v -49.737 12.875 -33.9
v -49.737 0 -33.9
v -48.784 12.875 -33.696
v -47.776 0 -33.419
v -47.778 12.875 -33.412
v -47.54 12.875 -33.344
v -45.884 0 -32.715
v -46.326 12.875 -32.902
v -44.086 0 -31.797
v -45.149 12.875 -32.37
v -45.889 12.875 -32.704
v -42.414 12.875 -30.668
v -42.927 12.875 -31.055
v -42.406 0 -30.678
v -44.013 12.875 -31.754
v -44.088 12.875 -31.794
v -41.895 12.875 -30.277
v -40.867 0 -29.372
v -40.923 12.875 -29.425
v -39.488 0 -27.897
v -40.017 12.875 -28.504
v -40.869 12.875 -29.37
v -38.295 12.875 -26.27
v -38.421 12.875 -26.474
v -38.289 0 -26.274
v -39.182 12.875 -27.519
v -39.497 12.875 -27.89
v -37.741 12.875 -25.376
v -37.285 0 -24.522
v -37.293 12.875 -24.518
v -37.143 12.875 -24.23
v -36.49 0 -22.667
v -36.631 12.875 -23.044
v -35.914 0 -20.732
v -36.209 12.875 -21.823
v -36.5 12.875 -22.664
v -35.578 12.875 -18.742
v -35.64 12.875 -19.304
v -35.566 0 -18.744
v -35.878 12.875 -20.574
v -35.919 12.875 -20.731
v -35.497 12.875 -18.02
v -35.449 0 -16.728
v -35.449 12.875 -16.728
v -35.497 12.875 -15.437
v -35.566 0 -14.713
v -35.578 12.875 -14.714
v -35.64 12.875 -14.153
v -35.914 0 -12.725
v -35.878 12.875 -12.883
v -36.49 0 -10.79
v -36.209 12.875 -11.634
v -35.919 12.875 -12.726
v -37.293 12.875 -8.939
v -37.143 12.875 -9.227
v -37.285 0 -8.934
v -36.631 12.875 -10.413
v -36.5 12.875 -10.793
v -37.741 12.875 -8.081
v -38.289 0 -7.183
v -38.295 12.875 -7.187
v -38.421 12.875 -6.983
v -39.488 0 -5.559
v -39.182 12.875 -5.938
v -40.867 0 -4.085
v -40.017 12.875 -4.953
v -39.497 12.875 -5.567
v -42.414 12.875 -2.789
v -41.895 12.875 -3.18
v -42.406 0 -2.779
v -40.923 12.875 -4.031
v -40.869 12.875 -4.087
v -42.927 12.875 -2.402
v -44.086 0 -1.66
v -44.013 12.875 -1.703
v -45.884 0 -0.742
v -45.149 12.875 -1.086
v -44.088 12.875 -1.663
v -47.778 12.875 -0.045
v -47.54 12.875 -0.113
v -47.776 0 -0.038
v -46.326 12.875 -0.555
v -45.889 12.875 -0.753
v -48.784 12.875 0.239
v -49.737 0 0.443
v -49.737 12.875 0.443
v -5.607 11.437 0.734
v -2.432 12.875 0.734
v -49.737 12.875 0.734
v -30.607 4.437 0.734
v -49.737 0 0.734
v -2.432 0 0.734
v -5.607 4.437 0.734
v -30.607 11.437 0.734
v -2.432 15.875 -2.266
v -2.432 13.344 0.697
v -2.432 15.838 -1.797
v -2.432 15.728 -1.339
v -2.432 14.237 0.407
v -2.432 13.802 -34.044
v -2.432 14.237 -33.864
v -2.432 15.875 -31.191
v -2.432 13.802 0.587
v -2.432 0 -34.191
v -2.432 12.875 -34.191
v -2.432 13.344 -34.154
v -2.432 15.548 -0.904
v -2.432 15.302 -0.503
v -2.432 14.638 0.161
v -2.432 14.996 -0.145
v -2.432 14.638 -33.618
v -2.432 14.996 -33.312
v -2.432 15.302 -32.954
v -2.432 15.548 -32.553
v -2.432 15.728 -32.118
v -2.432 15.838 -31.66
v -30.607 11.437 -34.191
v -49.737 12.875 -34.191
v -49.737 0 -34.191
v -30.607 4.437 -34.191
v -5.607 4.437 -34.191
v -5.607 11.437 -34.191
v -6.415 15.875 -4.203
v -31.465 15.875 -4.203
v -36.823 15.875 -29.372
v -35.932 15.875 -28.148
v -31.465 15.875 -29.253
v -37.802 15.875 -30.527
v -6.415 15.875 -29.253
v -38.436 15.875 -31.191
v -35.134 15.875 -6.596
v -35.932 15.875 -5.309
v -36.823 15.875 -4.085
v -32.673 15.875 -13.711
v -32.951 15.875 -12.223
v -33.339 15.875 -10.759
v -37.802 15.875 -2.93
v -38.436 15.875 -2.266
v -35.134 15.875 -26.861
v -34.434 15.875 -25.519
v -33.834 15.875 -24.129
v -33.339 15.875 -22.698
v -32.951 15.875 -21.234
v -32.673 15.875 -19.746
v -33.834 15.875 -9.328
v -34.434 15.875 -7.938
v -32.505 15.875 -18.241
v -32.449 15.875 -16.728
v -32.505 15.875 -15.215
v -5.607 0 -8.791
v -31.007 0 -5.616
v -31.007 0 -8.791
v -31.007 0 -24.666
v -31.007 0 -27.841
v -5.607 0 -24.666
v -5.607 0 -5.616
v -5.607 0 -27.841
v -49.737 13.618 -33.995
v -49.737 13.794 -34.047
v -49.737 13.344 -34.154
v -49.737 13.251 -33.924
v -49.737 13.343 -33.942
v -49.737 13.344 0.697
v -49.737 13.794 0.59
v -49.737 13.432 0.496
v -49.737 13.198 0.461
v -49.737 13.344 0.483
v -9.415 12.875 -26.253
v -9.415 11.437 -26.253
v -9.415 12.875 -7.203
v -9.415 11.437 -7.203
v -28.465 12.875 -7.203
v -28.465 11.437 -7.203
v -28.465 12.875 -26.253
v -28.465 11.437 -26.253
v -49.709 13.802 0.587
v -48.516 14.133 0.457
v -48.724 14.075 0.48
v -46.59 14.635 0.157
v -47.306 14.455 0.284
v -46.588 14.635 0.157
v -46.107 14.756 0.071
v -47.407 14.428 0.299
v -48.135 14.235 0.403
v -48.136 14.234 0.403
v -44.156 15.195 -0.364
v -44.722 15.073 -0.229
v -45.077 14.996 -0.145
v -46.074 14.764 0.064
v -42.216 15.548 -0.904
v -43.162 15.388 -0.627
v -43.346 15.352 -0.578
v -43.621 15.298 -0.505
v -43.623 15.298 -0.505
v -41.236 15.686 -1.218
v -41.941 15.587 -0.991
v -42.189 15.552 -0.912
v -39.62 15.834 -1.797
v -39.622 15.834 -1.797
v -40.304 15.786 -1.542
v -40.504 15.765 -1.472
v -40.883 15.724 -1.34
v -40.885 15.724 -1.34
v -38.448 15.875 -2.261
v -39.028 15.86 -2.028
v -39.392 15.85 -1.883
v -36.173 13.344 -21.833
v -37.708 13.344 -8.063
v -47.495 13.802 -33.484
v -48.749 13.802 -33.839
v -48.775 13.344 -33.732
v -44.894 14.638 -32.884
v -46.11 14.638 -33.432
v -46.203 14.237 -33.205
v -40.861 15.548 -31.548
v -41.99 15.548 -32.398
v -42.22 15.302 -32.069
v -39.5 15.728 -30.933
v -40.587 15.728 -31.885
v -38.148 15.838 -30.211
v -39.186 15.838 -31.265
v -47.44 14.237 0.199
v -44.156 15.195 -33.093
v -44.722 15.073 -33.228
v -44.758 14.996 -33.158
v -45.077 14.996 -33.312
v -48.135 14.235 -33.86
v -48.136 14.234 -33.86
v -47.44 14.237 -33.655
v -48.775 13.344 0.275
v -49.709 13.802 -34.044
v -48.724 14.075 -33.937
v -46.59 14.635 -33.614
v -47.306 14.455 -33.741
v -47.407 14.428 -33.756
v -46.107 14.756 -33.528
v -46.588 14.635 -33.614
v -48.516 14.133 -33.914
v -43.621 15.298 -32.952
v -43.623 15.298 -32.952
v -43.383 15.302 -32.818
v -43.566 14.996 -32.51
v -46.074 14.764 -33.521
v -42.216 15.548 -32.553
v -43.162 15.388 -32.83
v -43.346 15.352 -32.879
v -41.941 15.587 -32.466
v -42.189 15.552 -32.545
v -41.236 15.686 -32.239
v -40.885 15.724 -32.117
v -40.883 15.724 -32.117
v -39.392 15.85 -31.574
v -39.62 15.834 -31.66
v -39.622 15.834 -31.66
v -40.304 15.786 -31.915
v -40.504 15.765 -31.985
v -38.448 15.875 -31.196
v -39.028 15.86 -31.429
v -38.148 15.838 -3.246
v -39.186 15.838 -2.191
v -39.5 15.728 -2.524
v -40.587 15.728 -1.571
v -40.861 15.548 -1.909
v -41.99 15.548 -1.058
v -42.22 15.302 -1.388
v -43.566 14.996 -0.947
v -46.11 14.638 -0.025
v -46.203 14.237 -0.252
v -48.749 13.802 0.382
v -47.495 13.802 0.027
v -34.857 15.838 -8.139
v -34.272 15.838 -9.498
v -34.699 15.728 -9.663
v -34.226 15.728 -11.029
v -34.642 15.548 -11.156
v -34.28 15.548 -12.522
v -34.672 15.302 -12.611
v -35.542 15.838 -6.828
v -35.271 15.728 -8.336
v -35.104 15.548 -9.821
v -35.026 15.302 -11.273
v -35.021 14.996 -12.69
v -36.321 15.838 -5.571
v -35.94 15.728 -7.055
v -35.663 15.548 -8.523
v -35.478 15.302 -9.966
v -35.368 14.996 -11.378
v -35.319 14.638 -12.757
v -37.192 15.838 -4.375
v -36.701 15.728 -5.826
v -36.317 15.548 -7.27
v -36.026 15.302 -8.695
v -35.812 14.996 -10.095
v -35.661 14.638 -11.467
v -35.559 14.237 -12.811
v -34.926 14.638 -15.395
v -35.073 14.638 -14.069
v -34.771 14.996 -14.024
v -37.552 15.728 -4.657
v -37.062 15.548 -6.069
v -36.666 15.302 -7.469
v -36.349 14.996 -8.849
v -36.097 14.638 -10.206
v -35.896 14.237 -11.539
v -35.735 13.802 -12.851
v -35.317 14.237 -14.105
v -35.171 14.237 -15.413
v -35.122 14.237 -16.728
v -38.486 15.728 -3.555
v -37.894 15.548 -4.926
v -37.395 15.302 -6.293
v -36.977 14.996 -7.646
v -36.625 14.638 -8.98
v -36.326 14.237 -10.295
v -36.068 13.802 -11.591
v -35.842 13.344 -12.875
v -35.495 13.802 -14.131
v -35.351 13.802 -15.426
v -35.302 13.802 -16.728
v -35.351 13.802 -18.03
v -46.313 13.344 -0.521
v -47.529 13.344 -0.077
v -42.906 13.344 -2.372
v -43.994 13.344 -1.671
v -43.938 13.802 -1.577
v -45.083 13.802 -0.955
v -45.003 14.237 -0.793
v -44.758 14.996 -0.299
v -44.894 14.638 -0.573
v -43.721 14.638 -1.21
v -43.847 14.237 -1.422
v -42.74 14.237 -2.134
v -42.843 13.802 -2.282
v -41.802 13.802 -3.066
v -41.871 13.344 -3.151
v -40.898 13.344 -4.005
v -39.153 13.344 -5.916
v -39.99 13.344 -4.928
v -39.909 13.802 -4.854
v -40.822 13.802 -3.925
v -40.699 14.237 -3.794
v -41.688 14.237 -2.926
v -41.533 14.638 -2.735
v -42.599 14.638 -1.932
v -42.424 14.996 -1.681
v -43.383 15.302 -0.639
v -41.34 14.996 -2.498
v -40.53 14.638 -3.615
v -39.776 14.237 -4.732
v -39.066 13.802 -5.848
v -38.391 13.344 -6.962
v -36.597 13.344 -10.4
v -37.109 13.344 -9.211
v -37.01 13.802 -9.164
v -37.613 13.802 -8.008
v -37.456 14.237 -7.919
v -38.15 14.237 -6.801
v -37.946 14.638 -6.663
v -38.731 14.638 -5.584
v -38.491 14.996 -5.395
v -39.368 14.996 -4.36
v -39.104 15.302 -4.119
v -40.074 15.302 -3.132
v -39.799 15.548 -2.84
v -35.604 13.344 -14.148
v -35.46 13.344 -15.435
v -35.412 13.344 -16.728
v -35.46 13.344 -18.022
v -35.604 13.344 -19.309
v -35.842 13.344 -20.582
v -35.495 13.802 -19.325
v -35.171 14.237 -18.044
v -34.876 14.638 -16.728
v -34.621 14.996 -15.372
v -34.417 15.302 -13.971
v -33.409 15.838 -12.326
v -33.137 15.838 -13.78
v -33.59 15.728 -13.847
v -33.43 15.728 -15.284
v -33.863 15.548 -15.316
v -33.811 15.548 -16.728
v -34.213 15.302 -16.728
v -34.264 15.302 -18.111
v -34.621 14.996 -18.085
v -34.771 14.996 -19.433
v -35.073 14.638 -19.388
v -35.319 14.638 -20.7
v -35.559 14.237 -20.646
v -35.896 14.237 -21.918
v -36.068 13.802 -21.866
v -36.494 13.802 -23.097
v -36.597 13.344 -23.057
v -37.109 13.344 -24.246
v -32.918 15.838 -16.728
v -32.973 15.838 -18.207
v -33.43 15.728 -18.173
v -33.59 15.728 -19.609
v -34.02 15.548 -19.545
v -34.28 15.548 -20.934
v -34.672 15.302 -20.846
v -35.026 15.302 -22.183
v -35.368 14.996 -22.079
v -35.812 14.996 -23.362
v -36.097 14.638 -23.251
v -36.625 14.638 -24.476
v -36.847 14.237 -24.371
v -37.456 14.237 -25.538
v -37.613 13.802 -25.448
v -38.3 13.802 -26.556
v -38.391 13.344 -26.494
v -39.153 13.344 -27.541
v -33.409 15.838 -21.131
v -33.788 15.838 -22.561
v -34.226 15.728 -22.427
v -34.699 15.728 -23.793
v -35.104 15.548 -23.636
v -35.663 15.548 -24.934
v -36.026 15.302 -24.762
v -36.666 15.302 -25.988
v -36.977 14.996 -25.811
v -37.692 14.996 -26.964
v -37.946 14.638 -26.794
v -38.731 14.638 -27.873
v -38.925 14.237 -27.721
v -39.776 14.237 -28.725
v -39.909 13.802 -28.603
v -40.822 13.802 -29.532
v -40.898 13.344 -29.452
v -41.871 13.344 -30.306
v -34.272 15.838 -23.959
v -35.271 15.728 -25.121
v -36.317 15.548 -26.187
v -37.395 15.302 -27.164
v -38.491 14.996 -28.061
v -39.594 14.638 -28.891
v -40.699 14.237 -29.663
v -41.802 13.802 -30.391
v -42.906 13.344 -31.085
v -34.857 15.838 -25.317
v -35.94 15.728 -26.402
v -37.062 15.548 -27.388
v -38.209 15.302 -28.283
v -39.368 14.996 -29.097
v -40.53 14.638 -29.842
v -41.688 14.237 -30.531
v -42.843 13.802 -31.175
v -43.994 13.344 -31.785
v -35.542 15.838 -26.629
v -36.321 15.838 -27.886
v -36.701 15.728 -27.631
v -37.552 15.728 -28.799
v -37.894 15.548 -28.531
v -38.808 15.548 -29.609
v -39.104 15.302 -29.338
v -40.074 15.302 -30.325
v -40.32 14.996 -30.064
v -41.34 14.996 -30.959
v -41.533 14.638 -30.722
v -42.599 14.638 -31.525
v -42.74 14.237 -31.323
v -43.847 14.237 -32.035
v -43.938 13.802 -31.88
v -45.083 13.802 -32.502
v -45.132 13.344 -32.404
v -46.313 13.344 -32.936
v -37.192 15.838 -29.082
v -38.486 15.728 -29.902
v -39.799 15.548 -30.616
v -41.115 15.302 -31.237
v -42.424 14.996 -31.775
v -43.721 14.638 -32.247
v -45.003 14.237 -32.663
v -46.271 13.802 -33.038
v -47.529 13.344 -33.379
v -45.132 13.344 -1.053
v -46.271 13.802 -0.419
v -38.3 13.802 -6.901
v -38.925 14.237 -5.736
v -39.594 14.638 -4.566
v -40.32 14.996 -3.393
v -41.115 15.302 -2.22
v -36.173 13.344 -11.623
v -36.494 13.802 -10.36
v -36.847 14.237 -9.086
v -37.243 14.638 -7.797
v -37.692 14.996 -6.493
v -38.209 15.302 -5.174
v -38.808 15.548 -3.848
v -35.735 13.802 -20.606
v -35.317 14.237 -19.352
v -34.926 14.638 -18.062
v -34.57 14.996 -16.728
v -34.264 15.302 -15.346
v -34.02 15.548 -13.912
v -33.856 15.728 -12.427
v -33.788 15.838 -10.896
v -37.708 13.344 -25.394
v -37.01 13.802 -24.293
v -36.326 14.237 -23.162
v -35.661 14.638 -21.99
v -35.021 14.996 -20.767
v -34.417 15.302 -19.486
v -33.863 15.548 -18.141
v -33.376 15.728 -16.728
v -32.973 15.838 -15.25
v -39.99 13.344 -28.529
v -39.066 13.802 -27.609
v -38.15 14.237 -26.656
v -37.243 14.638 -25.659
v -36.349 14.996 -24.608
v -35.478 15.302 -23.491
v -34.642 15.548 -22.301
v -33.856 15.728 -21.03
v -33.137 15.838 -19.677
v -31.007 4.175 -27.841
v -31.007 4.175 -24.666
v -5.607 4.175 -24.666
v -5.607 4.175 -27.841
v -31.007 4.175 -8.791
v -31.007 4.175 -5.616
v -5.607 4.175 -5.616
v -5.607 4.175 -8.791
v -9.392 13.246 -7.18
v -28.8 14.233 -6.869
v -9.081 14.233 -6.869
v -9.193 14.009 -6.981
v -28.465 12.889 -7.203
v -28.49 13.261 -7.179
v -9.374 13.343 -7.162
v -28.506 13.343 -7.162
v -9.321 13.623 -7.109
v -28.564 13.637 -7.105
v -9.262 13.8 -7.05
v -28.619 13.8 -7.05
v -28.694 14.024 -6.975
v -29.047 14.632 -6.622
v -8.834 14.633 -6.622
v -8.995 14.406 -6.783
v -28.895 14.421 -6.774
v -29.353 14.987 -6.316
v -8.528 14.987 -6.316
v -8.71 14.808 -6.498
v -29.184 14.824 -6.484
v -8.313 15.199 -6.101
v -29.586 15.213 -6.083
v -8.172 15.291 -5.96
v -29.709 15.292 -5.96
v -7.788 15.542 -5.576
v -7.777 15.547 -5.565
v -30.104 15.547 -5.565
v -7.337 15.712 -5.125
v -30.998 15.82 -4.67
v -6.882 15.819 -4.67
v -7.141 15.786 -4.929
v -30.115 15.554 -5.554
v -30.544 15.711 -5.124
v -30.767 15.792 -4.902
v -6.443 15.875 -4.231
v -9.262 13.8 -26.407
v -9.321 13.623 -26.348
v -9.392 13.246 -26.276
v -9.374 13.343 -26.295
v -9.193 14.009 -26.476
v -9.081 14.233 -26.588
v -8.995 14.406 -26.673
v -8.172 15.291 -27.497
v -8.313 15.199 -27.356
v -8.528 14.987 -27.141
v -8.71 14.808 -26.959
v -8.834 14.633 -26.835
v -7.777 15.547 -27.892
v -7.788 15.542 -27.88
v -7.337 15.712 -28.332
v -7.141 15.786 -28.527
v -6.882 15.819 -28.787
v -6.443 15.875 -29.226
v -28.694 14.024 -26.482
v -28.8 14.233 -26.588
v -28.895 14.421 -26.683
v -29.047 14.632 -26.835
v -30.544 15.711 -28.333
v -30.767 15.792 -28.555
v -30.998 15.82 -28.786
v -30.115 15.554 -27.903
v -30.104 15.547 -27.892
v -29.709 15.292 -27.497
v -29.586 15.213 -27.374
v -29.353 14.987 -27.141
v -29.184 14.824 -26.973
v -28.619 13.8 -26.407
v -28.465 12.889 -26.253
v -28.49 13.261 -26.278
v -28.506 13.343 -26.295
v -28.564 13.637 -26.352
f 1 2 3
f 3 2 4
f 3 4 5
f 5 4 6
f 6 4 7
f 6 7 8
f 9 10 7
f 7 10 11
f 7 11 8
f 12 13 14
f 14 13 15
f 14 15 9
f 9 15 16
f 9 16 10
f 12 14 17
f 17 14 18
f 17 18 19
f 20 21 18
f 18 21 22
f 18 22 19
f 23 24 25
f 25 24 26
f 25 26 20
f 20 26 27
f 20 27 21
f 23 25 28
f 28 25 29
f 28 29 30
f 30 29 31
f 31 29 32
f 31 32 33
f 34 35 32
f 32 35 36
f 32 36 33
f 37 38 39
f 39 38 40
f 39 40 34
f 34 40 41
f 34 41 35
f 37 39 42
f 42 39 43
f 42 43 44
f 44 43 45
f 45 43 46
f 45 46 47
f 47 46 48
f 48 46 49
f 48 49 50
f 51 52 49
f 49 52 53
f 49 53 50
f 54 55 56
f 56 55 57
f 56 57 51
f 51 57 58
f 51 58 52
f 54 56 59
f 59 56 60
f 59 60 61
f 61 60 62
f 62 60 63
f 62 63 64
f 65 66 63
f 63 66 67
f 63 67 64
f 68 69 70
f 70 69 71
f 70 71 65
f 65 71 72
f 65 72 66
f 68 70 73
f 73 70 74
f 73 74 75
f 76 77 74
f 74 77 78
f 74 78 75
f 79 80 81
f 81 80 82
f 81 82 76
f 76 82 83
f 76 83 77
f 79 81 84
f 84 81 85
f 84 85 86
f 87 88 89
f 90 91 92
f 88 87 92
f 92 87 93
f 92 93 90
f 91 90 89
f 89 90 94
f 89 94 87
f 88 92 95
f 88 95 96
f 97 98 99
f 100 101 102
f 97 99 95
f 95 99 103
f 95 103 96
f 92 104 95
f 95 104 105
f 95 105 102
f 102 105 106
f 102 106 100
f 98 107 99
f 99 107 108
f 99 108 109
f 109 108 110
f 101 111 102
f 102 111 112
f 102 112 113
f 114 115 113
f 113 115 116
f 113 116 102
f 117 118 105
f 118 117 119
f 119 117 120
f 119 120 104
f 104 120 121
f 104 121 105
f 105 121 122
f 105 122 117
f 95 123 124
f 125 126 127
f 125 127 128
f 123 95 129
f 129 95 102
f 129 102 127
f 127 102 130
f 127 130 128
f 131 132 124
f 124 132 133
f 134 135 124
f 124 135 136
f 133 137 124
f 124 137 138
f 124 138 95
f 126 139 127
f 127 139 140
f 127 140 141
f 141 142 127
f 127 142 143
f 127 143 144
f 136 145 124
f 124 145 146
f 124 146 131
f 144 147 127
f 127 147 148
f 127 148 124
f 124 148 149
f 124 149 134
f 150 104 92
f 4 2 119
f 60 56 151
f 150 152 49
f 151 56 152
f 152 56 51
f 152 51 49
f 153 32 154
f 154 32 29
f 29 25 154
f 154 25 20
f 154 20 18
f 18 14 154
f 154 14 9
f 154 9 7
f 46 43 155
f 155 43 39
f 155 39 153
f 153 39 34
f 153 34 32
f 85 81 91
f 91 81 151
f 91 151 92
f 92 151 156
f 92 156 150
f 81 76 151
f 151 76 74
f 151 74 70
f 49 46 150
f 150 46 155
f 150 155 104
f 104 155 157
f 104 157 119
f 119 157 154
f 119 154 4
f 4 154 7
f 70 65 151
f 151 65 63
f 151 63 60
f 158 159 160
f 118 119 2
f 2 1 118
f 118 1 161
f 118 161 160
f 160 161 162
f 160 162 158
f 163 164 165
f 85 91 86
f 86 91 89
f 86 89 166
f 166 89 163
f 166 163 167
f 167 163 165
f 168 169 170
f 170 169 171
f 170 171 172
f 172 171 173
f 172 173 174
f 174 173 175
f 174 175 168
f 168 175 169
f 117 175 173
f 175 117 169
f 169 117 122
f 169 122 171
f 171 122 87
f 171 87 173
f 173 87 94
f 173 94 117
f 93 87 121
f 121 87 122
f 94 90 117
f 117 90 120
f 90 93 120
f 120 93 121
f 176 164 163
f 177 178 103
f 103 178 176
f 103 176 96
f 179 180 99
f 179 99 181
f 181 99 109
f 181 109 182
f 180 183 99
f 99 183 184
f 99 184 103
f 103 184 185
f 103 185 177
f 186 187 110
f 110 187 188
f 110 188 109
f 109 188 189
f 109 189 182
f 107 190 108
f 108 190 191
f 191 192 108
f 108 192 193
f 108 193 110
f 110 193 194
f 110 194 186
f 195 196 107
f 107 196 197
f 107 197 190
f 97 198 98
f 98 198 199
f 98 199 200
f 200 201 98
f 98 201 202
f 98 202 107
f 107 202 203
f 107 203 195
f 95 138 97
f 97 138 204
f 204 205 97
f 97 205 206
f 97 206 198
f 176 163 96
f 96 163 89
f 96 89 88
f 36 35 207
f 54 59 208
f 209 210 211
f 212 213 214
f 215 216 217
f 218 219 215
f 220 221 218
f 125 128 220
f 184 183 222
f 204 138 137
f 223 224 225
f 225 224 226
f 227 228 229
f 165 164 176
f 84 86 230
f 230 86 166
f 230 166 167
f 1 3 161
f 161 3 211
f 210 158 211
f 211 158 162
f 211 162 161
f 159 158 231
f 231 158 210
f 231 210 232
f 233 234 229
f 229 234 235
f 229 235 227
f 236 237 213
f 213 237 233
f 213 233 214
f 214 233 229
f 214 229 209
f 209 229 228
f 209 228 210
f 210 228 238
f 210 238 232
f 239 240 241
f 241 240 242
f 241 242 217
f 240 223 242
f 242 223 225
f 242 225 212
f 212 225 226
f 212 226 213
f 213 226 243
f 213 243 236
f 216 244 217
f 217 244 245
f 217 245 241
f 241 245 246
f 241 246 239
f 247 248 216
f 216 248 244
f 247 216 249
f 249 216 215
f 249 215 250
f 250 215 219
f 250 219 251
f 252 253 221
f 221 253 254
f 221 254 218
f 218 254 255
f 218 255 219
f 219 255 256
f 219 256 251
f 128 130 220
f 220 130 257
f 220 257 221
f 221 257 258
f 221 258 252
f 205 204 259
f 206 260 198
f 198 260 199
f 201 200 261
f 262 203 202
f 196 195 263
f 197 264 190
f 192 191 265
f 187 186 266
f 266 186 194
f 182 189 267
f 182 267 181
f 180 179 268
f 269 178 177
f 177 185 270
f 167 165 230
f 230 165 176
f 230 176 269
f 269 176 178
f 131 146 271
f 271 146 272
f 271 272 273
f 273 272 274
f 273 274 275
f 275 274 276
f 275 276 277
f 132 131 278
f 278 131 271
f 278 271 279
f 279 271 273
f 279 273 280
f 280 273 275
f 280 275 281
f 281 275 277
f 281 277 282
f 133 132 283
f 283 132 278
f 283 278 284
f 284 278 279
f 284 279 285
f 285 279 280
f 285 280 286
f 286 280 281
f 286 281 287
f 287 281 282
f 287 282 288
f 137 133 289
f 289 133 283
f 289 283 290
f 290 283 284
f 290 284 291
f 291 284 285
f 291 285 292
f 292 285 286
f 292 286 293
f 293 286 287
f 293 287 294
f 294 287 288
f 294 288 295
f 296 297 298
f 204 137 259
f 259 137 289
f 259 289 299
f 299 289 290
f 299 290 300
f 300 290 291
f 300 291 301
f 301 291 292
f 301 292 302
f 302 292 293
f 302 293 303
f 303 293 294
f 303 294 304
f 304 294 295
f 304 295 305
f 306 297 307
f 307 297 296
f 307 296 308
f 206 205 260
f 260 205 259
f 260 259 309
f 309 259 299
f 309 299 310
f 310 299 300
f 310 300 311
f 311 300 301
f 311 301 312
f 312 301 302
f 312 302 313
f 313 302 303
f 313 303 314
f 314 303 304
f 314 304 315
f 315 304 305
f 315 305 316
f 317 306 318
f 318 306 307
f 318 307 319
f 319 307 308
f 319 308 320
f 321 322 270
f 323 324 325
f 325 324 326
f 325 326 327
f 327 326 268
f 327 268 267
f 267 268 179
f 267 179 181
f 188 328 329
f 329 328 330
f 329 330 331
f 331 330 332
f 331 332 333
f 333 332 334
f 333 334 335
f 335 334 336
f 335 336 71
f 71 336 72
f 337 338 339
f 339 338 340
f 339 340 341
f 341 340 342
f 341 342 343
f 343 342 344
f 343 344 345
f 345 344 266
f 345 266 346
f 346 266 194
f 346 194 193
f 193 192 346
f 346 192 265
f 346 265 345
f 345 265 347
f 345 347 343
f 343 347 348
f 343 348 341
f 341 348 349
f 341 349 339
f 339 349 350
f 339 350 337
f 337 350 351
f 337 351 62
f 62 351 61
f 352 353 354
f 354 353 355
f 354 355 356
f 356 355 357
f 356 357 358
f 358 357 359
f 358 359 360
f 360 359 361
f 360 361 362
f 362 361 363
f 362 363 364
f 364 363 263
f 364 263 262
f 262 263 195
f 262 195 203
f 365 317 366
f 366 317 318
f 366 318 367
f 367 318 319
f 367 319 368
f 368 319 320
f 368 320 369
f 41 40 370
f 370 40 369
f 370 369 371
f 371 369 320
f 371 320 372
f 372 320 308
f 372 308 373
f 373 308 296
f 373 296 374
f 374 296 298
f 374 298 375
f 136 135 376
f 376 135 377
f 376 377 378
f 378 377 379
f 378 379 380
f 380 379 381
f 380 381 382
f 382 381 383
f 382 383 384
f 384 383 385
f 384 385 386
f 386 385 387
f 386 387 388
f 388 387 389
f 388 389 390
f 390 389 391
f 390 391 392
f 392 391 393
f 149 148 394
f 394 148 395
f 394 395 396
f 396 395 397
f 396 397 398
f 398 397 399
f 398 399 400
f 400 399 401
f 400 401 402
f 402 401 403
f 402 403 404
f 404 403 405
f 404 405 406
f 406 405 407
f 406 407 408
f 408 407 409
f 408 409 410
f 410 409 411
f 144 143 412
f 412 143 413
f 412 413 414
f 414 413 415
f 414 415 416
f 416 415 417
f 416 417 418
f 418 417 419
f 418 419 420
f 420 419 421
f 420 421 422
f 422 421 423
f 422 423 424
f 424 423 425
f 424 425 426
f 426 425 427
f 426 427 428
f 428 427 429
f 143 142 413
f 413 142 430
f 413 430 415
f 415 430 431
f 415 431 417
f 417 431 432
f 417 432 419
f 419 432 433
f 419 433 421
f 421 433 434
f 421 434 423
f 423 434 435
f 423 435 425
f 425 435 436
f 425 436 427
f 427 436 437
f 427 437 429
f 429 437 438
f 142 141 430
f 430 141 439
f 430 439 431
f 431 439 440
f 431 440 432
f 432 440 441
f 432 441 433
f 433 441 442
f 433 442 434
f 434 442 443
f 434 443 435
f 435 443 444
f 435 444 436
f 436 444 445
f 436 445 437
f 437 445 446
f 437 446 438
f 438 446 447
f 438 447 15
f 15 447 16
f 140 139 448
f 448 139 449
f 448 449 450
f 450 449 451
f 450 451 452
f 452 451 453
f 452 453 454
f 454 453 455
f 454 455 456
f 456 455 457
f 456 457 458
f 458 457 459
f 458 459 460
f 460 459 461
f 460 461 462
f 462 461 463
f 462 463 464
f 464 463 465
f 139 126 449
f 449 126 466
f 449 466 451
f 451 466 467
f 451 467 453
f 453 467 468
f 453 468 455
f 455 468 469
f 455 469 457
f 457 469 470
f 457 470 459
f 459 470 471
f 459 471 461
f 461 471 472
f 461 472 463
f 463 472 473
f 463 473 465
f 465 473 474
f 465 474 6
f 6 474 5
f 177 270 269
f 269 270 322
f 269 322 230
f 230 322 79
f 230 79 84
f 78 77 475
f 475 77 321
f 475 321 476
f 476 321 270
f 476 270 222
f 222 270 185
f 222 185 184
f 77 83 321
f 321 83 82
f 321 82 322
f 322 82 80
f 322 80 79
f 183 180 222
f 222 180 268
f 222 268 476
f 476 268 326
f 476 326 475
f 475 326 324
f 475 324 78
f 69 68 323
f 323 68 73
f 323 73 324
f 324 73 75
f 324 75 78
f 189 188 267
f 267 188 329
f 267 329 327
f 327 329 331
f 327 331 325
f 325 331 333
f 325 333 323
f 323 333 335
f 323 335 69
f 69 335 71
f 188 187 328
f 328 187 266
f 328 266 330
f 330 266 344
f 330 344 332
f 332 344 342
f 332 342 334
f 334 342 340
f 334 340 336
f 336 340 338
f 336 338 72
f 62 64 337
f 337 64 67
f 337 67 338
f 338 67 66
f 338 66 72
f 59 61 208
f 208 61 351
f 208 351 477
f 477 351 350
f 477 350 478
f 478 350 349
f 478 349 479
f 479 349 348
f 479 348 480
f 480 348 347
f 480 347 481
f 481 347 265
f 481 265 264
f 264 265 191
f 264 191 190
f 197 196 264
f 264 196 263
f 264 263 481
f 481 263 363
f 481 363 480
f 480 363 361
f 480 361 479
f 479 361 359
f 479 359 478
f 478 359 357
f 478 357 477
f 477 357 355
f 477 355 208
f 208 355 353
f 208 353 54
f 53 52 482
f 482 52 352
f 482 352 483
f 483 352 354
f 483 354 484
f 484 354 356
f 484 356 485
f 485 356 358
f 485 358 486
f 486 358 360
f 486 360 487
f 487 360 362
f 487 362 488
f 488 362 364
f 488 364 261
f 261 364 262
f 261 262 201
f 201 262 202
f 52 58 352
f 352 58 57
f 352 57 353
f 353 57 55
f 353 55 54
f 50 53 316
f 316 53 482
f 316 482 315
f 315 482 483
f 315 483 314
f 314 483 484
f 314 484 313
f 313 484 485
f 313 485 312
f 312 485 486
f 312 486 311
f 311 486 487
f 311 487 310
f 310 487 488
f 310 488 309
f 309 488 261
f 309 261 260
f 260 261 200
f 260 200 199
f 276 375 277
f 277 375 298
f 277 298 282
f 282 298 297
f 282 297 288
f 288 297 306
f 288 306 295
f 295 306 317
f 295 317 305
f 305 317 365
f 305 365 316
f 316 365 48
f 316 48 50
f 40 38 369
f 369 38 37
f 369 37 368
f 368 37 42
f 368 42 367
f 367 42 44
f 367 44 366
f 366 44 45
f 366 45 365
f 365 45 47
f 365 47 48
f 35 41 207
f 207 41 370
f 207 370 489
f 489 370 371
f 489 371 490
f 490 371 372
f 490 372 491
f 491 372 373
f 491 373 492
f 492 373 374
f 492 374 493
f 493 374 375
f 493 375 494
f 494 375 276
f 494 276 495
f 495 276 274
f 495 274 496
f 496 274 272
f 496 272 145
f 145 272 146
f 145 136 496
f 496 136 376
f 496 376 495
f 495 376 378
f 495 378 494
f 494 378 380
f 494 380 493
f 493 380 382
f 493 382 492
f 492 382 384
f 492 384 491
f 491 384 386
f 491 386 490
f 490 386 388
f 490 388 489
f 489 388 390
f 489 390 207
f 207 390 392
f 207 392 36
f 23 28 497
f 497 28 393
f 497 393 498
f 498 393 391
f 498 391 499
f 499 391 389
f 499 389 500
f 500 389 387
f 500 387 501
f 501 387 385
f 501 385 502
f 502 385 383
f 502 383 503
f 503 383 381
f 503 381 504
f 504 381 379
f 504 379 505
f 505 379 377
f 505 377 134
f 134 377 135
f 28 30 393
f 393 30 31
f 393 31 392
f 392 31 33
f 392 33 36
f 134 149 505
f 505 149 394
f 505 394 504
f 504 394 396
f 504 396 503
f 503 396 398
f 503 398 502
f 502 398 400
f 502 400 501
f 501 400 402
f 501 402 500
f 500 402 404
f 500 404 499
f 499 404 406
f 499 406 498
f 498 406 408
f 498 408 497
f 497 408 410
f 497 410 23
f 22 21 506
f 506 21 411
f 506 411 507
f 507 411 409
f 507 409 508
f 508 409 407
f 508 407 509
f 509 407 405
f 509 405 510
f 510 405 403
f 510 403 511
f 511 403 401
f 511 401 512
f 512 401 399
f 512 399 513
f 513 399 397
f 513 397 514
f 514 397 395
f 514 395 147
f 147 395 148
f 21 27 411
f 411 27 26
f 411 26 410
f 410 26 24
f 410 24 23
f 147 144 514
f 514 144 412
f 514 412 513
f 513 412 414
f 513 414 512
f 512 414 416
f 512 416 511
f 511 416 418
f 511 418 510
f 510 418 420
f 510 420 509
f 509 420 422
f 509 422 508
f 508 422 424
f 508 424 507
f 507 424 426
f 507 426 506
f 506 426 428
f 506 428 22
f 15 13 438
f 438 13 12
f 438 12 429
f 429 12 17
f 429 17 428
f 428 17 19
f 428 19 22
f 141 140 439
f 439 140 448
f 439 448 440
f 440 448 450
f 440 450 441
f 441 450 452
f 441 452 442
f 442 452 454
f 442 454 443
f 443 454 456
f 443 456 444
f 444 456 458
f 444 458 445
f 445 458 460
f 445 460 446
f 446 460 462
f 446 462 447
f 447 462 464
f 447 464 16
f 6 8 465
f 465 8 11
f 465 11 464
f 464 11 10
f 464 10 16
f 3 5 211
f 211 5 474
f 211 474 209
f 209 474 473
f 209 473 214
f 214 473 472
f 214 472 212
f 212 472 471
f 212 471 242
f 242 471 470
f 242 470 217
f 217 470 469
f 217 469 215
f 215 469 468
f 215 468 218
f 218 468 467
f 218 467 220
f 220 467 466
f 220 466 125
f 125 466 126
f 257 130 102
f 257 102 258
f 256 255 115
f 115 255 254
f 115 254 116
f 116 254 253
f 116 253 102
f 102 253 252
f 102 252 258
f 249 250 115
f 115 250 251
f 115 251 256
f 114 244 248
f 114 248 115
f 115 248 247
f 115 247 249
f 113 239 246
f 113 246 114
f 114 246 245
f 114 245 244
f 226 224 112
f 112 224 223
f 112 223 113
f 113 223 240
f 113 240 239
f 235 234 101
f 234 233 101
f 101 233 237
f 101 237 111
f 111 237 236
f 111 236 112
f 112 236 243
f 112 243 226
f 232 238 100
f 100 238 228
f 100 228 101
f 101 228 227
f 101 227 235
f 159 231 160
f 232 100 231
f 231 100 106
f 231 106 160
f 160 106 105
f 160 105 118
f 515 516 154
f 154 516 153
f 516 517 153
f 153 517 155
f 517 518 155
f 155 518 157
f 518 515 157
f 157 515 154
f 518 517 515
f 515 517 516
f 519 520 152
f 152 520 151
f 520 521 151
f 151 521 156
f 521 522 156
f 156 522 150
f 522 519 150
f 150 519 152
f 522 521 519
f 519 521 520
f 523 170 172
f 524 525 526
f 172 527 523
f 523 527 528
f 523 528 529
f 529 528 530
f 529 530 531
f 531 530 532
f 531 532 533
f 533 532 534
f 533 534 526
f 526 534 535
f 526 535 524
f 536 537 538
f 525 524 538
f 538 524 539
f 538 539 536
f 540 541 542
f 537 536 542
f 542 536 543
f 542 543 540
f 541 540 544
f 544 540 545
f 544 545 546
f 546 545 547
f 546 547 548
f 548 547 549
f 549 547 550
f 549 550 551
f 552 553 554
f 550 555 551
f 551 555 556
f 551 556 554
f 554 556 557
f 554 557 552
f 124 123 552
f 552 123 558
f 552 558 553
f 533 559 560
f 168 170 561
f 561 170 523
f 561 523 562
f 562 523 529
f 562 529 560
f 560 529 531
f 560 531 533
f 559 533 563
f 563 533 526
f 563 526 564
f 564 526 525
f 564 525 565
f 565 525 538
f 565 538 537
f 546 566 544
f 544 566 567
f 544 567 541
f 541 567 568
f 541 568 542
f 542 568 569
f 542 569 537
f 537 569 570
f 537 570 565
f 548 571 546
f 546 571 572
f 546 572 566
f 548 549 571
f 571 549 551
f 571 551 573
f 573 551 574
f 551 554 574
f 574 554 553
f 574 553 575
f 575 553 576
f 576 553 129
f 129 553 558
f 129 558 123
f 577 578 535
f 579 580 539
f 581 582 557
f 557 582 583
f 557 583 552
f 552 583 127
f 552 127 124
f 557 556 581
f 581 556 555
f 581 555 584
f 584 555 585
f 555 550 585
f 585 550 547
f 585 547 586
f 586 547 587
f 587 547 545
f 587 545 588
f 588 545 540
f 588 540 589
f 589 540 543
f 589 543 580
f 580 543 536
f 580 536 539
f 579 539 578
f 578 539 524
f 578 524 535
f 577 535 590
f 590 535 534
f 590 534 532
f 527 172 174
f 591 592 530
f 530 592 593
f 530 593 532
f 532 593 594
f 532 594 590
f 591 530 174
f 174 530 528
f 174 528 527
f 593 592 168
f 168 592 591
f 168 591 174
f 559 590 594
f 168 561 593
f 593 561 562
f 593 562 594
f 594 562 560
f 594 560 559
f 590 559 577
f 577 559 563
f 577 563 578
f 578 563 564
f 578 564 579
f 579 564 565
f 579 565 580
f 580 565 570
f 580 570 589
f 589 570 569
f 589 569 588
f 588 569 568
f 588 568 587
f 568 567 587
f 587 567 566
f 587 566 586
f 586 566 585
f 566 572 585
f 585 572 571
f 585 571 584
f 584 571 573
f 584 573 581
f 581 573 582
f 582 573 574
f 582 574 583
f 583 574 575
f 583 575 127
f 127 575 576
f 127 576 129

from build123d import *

# Parameters (mm, degrees)
BOSS_EXTRUDE1_DEPTH = 15.875
SKETCH5_W           = 3.175
SKETCH5_H           = 15.875
CUT_EXTRUDE1_DEPTH  = 3.175
SKETCH6_W           = 3.175
SKETCH6_H           = 15.875
CUT_EXTRUDE2_DEPTH  = 3.175
SKETCH7_W           = 19.05
SKETCH7_H           = 19.05
CUT_EXTRUDE4_DEPTH  = 10
SKETCH8_W           = 25
SKETCH8_H           = 7
CUT_EXTRUDE5_DEPTH  = 63.813266363
FILLET3_R           = 3
SKETCH2_W           = 25.4
SKETCH2_H           = 3.175
CUT_EXTRUDE6_DEPTH  = 4.175
SKETCH3_W           = 25.4
SKETCH3_H           = 3.175
CUT_EXTRUDE7_DEPTH  = 4.175
FILLET4_R           = 3


with BuildPart() as part:
    # Sketch1 → Boss-Extrude1 (new body)
    with BuildSketch(Plane(origin=(0, 0, 0), x_dir=(1, 0, 0), z_dir=(0, 1, 0))):
        with BuildLine():
            Line((-52.911658323, 34.190937018), (-2.431658323, 34.190937018))
            Line((-2.431658323, 34.190937018), (-2.431658323, -0.734062982))
            Line((-2.431658323, -0.734062982), (-52.911658323, -0.734062982))
            ThreePointArc((-52.911658323, -0.734062982), (-35.449158323, 16.728437018), (-52.911658323, 34.190937018))
        make_face()
    extrude(amount=BOSS_EXTRUDE1_DEPTH)

    # Sketch5 → Cut-Extrude1 (cut)
    with BuildSketch(Plane(origin=(0, 0, -34.190937018), x_dir=(-1, 0, 0), z_dir=(0, 0, -1))):
        with Locations((51.324158323, 7.9375)):
            Rectangle(SKETCH5_W, SKETCH5_H)
    extrude(amount=-CUT_EXTRUDE1_DEPTH, mode=Mode.SUBTRACT)

    # Sketch6 → Cut-Extrude2 (cut)
    with BuildSketch(Plane.XY.offset(0.734062982)):
        with Locations((-51.324158323, 7.9375)):
            Rectangle(SKETCH6_W, SKETCH6_H)
    extrude(amount=-CUT_EXTRUDE2_DEPTH, mode=Mode.SUBTRACT)

    # Sketch7 → Cut-Extrude4 (cut)
    with BuildSketch(Plane(origin=(0, 15.875, 0), x_dir=(1, 0, 0), z_dir=(0, 1, 0))):
        with Locations((-18.940408323, 16.728437018)):
            Rectangle(SKETCH7_W, SKETCH7_H)
    extrude(amount=-CUT_EXTRUDE4_DEPTH, mode=Mode.SUBTRACT)

    # Sketch8 → Cut-Extrude5 (cut, through all)
    with BuildSketch(Plane(origin=(0, 0, -34.190937018), x_dir=(-1, 0, 0), z_dir=(0, 0, -1))):
        with Locations((18.106658323, 7.9375)):
            Rectangle(SKETCH8_W, SKETCH8_H)
    extrude(amount=-CUT_EXTRUDE5_DEPTH, mode=Mode.SUBTRACT)

    # Fillet3
    # the kernel refuses this fillet: 3 mm, written as the material it takes off along each edge
    with BuildSketch(Plane(origin=(-57.236658323, 15.875, -34.190937018), x_dir=(0, 0, 1), z_dir=(1, 0, 0)), Plane(origin=(5.068341677, 15.875, 0.734062982), x_dir=(0, 0, -1), z_dir=(-1, 0, 0))) as fillet3_piece_1:
        with BuildLine():
            CenterArc((FILLET3_R, FILLET3_R), FILLET3_R, 180, 90)
            Line((0, FILLET3_R), (0, 0))
            Line((0, 0), (FILLET3_R, 0))
        make_face()
    extrude(amount=62.305, mode=Mode.SUBTRACT)
    with BuildSketch(Plane(origin=(-52.911658323, 15.875, -16.728437018), x_dir=(-0.24468593558499258, 0, 0.969602389088897), z_dir=(-0.969602389088897, 0, -0.24468593558499258))) as fillet3_piece_2:
        with BuildLine():
            CenterArc((17.4625 + FILLET3_R, -FILLET3_R), FILLET3_R, 90, 90)
            Line((17.4625 + FILLET3_R, 0), (17.4625, 0))
            Line((17.4625, 0), (17.4625, -FILLET3_R))
        make_face()
    revolve(axis=Axis((-52.911658323, 15.875, -16.728437018), (0, 1, 0)), revolution_arc=208.326548528, mode=Mode.SUBTRACT)

    # Sketch2 → Cut-Extrude6 (cut)
    with BuildSketch(Plane(origin=(0, 0, 0), x_dir=(-1, 0, 0), z_dir=(0, -1, 0))):
        with Locations((18.306658323, 26.253437018)):
            Rectangle(SKETCH2_W, SKETCH2_H)
    extrude(amount=-CUT_EXTRUDE6_DEPTH, mode=Mode.SUBTRACT)

    # Sketch3 → Cut-Extrude7 (cut)
    with BuildSketch(Plane(origin=(0, 0, 0), x_dir=(-1, 0, 0), z_dir=(0, -1, 0))):
        with Locations((18.306658323, 7.203437018)):
            Rectangle(SKETCH3_W, SKETCH3_H)
    extrude(amount=-CUT_EXTRUDE7_DEPTH, mode=Mode.SUBTRACT)

    # Fillet4
    fillet4_edges = [part.edges().sort_by_distance(p)[0] for p in [
        (-9.415408323, 15.875, -16.728437018),
        (-18.940408323, 15.875, -26.253437018),
        (-28.465408323, 15.875, -16.728437018),
        (-18.940408323, 15.875, -7.203437018),
    ]]
    fillet(fillet4_edges, radius=FILLET4_R)


solid = part.part
